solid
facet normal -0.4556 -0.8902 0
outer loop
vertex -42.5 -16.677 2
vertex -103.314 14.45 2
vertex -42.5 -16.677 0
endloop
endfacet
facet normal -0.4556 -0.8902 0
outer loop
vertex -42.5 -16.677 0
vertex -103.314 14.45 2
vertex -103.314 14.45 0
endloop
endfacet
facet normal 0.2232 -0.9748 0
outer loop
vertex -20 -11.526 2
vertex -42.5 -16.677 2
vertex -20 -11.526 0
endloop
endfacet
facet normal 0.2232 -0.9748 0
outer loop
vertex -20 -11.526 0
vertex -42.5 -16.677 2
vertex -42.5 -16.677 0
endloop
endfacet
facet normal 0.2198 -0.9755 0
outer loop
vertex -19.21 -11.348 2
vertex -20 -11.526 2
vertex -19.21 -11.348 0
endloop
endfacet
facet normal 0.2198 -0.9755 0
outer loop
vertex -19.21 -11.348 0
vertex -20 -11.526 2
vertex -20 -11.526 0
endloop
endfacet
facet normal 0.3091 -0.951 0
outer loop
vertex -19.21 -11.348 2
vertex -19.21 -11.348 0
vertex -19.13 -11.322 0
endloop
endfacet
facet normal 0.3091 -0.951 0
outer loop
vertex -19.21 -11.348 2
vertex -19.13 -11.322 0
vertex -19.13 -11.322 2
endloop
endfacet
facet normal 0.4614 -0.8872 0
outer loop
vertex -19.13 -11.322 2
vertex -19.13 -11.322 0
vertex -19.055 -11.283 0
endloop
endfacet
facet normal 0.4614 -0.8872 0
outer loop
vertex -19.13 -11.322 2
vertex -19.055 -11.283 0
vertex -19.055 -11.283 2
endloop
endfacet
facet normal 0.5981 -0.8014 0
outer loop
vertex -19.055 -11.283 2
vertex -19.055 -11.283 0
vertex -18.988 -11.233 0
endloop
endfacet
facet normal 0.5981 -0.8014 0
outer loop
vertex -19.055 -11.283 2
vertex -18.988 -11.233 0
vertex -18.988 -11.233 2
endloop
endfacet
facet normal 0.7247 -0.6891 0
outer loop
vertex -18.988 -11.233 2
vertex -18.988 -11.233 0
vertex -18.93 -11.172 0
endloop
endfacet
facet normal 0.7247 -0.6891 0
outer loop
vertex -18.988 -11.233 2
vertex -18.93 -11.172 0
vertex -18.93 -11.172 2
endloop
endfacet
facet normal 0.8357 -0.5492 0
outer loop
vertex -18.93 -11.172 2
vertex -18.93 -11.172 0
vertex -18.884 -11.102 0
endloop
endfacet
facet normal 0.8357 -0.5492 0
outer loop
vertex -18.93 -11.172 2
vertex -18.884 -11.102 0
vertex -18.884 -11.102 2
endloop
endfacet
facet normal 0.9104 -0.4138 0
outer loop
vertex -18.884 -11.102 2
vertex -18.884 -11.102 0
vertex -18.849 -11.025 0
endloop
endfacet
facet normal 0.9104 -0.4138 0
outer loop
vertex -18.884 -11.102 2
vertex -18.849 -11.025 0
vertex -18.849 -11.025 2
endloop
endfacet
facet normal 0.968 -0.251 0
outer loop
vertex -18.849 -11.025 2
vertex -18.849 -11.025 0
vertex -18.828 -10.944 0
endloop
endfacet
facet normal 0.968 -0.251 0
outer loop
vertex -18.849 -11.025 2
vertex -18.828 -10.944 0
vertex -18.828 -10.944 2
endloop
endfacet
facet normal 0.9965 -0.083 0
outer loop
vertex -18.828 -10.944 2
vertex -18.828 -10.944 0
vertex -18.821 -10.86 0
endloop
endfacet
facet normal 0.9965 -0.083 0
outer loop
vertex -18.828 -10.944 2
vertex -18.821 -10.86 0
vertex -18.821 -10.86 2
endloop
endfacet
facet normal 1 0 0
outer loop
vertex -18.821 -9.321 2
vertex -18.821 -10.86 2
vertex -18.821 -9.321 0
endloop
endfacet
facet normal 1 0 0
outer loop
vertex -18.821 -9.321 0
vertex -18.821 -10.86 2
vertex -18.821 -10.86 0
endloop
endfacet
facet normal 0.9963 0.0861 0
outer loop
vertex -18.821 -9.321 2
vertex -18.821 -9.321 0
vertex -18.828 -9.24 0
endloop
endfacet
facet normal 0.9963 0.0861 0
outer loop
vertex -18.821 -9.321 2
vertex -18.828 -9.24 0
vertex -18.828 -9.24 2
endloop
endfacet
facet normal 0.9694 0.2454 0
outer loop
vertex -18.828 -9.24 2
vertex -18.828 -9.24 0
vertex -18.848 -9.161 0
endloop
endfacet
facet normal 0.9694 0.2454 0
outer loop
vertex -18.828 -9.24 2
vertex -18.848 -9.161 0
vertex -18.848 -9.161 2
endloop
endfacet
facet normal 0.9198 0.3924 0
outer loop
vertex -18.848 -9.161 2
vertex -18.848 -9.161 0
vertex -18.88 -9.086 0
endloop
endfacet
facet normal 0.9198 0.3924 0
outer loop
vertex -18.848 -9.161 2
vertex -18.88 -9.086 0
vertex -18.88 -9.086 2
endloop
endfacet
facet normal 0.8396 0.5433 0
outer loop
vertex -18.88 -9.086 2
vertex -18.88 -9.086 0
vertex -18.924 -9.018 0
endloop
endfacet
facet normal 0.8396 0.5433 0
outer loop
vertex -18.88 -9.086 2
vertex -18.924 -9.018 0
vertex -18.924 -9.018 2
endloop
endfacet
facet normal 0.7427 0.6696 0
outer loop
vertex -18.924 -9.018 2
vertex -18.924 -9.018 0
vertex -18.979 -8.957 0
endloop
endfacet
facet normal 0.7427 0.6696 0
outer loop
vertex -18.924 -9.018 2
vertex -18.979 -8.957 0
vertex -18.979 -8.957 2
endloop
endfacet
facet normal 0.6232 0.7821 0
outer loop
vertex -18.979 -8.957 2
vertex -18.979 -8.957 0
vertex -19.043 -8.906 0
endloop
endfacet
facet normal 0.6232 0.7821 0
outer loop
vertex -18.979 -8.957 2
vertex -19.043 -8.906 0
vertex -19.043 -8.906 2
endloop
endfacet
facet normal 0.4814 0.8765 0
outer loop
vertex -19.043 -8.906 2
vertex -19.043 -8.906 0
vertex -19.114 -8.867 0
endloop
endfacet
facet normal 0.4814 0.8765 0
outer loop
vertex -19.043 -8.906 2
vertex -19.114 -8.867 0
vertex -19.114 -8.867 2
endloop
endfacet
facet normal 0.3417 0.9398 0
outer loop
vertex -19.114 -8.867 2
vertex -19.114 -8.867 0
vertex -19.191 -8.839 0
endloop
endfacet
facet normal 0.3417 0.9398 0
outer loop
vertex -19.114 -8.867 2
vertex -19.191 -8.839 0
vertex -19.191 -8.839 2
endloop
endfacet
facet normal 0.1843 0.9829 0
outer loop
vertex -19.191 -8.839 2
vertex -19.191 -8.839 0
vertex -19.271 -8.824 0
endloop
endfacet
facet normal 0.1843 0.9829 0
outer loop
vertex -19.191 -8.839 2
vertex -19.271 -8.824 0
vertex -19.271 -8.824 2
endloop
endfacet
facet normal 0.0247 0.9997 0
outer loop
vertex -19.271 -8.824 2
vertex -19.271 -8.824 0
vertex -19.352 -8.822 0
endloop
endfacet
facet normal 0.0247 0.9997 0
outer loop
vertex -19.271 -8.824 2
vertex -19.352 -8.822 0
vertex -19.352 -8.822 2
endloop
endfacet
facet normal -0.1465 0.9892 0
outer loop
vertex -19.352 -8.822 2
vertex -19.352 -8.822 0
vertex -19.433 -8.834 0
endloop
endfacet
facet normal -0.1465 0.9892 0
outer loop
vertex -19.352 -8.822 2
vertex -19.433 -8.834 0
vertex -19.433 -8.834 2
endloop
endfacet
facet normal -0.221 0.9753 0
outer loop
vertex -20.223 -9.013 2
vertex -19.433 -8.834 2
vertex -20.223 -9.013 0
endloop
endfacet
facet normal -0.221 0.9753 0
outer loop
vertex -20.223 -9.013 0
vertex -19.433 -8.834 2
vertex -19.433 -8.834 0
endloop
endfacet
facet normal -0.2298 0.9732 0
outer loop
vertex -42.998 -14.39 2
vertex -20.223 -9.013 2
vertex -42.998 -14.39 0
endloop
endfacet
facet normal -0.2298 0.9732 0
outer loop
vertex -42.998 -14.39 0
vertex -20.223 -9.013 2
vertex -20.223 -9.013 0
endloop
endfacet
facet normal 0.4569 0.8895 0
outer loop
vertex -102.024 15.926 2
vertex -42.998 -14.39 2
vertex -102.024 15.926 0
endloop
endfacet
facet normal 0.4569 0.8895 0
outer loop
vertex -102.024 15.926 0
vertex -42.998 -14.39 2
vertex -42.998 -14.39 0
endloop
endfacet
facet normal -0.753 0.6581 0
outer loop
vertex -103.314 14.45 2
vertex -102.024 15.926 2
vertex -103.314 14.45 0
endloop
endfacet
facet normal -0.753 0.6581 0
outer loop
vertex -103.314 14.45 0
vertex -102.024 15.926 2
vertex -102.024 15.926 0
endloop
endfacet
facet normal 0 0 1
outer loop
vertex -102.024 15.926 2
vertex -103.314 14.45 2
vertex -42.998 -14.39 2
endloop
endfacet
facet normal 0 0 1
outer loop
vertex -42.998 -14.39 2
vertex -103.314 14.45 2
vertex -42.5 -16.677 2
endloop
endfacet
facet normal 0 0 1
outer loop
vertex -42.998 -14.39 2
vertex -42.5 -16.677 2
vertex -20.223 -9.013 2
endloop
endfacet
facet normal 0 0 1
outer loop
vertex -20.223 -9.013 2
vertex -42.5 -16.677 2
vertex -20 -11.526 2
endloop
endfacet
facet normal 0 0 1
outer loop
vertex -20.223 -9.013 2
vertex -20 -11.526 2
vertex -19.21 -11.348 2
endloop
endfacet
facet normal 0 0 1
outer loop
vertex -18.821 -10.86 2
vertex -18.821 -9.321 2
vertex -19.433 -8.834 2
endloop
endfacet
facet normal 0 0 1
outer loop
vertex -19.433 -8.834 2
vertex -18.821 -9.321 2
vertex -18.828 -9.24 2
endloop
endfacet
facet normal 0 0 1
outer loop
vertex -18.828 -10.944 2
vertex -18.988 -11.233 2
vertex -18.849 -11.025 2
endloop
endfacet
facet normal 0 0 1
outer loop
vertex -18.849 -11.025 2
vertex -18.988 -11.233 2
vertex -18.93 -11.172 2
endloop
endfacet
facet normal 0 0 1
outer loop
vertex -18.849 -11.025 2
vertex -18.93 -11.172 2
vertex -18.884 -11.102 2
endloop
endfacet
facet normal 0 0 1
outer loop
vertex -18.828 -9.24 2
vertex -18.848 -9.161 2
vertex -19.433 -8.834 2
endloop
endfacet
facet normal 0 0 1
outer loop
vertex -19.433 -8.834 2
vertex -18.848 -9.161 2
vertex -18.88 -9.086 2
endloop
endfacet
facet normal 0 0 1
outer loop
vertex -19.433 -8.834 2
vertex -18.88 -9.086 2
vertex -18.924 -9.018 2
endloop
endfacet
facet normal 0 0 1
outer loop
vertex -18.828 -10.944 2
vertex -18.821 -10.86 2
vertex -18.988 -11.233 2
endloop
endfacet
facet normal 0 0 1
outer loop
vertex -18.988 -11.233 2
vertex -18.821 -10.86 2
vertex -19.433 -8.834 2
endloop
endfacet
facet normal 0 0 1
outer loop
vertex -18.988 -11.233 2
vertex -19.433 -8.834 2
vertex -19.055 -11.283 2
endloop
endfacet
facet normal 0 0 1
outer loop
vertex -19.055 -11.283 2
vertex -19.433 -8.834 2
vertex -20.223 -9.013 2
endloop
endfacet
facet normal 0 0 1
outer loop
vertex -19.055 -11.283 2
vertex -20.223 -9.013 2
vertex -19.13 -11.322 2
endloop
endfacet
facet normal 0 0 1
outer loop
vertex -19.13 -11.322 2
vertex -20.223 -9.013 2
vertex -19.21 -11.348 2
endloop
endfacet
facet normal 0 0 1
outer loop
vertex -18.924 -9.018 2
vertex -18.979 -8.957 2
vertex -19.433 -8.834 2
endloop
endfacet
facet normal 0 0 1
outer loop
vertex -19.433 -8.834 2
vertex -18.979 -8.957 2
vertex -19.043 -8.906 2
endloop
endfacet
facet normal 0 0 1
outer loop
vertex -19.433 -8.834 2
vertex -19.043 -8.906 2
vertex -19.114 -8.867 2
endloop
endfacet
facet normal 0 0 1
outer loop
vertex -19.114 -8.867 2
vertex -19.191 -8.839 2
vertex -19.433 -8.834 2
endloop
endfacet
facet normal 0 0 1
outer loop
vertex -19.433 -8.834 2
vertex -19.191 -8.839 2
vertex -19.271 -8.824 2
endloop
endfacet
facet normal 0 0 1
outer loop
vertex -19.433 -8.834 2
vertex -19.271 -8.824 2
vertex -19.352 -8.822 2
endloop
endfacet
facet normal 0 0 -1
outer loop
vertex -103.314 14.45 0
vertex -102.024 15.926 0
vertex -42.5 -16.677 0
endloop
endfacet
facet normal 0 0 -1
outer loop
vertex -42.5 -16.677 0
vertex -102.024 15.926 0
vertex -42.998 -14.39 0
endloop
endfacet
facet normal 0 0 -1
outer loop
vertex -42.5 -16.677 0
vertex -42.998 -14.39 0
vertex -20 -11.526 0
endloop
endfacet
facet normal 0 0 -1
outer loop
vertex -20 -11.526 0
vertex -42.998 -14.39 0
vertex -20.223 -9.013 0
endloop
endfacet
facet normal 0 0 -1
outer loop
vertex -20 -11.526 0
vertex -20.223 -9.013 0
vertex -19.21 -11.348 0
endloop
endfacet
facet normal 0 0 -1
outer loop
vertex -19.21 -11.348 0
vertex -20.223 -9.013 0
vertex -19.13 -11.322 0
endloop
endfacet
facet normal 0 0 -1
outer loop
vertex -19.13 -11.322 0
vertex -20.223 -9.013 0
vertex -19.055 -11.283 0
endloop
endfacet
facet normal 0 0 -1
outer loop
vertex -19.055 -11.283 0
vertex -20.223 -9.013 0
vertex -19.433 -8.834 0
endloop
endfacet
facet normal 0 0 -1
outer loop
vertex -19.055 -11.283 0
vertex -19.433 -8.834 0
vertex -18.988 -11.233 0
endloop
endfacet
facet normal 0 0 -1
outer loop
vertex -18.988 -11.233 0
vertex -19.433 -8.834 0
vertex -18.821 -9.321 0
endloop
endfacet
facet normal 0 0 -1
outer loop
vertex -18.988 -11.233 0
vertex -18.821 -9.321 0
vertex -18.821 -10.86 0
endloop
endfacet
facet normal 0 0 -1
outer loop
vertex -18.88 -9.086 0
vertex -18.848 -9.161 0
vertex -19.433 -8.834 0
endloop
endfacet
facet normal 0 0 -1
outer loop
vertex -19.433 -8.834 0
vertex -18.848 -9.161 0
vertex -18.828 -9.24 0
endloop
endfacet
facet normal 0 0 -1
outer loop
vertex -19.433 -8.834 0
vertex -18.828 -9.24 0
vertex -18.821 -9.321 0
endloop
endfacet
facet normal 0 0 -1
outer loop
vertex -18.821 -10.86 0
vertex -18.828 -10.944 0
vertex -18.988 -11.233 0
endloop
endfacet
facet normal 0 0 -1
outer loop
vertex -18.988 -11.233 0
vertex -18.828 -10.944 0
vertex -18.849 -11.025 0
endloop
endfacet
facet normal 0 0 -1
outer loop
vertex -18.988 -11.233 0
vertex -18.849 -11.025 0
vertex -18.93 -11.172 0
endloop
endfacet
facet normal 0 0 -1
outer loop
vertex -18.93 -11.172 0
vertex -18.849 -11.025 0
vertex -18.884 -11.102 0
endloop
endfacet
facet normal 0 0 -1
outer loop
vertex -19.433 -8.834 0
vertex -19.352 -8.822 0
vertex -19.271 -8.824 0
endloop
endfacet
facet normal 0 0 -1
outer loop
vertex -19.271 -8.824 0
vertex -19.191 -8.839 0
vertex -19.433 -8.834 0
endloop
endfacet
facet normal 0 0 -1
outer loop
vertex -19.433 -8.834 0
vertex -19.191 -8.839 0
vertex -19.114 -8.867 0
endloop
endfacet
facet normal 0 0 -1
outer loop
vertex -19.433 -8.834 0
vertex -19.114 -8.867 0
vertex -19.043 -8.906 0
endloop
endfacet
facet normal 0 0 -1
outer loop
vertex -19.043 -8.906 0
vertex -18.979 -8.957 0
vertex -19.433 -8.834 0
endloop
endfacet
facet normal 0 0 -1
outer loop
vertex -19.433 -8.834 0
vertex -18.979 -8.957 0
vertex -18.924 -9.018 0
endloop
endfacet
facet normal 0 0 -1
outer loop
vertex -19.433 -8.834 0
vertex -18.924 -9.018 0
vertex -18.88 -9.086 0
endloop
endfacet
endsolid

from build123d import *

# Parameters (mm, degrees)
EXTRUDE_1_DEPTH = 2


with BuildPart() as part:
    # 스케치1 → 보스-돌출1 (new body)
    with BuildSketch(Plane.XY):
        with BuildLine():
            Line((-103.31355612, 14.450417953), (-102.023901871, 15.926355594))
            Line((-102.023901871, 15.926355594), (-42.998303114, -14.389807184))
            Line((-42.998303114, -14.389807184), (-20.223148332, -9.012633862))
            Line((-20.223148332, -9.012633862), (-19.43297603, -8.834019872))
            ThreePointArc((-19.43297603, -8.834019872), (-19.009782772, -8.930396085), (-18.821401864, -9.321412122))
            Line((-18.821401864, -9.321412122), (-18.821401864, -10.860213775))
            ThreePointArc((-18.821401864, -10.860213775), (-18.930385827, -11.171832867), (-19.209827698, -11.347606025))
            Line((-19.209827698, -11.347606025), (-20, -11.526220015))
            Line((-20, -11.526220015), (-42.500319357, -16.677300826))
            Line((-42.500319357, -16.677300826), (-103.31355612, 14.450417953))
        make_face()
    extrude(amount=EXTRUDE_1_DEPTH)


solid = part.part
